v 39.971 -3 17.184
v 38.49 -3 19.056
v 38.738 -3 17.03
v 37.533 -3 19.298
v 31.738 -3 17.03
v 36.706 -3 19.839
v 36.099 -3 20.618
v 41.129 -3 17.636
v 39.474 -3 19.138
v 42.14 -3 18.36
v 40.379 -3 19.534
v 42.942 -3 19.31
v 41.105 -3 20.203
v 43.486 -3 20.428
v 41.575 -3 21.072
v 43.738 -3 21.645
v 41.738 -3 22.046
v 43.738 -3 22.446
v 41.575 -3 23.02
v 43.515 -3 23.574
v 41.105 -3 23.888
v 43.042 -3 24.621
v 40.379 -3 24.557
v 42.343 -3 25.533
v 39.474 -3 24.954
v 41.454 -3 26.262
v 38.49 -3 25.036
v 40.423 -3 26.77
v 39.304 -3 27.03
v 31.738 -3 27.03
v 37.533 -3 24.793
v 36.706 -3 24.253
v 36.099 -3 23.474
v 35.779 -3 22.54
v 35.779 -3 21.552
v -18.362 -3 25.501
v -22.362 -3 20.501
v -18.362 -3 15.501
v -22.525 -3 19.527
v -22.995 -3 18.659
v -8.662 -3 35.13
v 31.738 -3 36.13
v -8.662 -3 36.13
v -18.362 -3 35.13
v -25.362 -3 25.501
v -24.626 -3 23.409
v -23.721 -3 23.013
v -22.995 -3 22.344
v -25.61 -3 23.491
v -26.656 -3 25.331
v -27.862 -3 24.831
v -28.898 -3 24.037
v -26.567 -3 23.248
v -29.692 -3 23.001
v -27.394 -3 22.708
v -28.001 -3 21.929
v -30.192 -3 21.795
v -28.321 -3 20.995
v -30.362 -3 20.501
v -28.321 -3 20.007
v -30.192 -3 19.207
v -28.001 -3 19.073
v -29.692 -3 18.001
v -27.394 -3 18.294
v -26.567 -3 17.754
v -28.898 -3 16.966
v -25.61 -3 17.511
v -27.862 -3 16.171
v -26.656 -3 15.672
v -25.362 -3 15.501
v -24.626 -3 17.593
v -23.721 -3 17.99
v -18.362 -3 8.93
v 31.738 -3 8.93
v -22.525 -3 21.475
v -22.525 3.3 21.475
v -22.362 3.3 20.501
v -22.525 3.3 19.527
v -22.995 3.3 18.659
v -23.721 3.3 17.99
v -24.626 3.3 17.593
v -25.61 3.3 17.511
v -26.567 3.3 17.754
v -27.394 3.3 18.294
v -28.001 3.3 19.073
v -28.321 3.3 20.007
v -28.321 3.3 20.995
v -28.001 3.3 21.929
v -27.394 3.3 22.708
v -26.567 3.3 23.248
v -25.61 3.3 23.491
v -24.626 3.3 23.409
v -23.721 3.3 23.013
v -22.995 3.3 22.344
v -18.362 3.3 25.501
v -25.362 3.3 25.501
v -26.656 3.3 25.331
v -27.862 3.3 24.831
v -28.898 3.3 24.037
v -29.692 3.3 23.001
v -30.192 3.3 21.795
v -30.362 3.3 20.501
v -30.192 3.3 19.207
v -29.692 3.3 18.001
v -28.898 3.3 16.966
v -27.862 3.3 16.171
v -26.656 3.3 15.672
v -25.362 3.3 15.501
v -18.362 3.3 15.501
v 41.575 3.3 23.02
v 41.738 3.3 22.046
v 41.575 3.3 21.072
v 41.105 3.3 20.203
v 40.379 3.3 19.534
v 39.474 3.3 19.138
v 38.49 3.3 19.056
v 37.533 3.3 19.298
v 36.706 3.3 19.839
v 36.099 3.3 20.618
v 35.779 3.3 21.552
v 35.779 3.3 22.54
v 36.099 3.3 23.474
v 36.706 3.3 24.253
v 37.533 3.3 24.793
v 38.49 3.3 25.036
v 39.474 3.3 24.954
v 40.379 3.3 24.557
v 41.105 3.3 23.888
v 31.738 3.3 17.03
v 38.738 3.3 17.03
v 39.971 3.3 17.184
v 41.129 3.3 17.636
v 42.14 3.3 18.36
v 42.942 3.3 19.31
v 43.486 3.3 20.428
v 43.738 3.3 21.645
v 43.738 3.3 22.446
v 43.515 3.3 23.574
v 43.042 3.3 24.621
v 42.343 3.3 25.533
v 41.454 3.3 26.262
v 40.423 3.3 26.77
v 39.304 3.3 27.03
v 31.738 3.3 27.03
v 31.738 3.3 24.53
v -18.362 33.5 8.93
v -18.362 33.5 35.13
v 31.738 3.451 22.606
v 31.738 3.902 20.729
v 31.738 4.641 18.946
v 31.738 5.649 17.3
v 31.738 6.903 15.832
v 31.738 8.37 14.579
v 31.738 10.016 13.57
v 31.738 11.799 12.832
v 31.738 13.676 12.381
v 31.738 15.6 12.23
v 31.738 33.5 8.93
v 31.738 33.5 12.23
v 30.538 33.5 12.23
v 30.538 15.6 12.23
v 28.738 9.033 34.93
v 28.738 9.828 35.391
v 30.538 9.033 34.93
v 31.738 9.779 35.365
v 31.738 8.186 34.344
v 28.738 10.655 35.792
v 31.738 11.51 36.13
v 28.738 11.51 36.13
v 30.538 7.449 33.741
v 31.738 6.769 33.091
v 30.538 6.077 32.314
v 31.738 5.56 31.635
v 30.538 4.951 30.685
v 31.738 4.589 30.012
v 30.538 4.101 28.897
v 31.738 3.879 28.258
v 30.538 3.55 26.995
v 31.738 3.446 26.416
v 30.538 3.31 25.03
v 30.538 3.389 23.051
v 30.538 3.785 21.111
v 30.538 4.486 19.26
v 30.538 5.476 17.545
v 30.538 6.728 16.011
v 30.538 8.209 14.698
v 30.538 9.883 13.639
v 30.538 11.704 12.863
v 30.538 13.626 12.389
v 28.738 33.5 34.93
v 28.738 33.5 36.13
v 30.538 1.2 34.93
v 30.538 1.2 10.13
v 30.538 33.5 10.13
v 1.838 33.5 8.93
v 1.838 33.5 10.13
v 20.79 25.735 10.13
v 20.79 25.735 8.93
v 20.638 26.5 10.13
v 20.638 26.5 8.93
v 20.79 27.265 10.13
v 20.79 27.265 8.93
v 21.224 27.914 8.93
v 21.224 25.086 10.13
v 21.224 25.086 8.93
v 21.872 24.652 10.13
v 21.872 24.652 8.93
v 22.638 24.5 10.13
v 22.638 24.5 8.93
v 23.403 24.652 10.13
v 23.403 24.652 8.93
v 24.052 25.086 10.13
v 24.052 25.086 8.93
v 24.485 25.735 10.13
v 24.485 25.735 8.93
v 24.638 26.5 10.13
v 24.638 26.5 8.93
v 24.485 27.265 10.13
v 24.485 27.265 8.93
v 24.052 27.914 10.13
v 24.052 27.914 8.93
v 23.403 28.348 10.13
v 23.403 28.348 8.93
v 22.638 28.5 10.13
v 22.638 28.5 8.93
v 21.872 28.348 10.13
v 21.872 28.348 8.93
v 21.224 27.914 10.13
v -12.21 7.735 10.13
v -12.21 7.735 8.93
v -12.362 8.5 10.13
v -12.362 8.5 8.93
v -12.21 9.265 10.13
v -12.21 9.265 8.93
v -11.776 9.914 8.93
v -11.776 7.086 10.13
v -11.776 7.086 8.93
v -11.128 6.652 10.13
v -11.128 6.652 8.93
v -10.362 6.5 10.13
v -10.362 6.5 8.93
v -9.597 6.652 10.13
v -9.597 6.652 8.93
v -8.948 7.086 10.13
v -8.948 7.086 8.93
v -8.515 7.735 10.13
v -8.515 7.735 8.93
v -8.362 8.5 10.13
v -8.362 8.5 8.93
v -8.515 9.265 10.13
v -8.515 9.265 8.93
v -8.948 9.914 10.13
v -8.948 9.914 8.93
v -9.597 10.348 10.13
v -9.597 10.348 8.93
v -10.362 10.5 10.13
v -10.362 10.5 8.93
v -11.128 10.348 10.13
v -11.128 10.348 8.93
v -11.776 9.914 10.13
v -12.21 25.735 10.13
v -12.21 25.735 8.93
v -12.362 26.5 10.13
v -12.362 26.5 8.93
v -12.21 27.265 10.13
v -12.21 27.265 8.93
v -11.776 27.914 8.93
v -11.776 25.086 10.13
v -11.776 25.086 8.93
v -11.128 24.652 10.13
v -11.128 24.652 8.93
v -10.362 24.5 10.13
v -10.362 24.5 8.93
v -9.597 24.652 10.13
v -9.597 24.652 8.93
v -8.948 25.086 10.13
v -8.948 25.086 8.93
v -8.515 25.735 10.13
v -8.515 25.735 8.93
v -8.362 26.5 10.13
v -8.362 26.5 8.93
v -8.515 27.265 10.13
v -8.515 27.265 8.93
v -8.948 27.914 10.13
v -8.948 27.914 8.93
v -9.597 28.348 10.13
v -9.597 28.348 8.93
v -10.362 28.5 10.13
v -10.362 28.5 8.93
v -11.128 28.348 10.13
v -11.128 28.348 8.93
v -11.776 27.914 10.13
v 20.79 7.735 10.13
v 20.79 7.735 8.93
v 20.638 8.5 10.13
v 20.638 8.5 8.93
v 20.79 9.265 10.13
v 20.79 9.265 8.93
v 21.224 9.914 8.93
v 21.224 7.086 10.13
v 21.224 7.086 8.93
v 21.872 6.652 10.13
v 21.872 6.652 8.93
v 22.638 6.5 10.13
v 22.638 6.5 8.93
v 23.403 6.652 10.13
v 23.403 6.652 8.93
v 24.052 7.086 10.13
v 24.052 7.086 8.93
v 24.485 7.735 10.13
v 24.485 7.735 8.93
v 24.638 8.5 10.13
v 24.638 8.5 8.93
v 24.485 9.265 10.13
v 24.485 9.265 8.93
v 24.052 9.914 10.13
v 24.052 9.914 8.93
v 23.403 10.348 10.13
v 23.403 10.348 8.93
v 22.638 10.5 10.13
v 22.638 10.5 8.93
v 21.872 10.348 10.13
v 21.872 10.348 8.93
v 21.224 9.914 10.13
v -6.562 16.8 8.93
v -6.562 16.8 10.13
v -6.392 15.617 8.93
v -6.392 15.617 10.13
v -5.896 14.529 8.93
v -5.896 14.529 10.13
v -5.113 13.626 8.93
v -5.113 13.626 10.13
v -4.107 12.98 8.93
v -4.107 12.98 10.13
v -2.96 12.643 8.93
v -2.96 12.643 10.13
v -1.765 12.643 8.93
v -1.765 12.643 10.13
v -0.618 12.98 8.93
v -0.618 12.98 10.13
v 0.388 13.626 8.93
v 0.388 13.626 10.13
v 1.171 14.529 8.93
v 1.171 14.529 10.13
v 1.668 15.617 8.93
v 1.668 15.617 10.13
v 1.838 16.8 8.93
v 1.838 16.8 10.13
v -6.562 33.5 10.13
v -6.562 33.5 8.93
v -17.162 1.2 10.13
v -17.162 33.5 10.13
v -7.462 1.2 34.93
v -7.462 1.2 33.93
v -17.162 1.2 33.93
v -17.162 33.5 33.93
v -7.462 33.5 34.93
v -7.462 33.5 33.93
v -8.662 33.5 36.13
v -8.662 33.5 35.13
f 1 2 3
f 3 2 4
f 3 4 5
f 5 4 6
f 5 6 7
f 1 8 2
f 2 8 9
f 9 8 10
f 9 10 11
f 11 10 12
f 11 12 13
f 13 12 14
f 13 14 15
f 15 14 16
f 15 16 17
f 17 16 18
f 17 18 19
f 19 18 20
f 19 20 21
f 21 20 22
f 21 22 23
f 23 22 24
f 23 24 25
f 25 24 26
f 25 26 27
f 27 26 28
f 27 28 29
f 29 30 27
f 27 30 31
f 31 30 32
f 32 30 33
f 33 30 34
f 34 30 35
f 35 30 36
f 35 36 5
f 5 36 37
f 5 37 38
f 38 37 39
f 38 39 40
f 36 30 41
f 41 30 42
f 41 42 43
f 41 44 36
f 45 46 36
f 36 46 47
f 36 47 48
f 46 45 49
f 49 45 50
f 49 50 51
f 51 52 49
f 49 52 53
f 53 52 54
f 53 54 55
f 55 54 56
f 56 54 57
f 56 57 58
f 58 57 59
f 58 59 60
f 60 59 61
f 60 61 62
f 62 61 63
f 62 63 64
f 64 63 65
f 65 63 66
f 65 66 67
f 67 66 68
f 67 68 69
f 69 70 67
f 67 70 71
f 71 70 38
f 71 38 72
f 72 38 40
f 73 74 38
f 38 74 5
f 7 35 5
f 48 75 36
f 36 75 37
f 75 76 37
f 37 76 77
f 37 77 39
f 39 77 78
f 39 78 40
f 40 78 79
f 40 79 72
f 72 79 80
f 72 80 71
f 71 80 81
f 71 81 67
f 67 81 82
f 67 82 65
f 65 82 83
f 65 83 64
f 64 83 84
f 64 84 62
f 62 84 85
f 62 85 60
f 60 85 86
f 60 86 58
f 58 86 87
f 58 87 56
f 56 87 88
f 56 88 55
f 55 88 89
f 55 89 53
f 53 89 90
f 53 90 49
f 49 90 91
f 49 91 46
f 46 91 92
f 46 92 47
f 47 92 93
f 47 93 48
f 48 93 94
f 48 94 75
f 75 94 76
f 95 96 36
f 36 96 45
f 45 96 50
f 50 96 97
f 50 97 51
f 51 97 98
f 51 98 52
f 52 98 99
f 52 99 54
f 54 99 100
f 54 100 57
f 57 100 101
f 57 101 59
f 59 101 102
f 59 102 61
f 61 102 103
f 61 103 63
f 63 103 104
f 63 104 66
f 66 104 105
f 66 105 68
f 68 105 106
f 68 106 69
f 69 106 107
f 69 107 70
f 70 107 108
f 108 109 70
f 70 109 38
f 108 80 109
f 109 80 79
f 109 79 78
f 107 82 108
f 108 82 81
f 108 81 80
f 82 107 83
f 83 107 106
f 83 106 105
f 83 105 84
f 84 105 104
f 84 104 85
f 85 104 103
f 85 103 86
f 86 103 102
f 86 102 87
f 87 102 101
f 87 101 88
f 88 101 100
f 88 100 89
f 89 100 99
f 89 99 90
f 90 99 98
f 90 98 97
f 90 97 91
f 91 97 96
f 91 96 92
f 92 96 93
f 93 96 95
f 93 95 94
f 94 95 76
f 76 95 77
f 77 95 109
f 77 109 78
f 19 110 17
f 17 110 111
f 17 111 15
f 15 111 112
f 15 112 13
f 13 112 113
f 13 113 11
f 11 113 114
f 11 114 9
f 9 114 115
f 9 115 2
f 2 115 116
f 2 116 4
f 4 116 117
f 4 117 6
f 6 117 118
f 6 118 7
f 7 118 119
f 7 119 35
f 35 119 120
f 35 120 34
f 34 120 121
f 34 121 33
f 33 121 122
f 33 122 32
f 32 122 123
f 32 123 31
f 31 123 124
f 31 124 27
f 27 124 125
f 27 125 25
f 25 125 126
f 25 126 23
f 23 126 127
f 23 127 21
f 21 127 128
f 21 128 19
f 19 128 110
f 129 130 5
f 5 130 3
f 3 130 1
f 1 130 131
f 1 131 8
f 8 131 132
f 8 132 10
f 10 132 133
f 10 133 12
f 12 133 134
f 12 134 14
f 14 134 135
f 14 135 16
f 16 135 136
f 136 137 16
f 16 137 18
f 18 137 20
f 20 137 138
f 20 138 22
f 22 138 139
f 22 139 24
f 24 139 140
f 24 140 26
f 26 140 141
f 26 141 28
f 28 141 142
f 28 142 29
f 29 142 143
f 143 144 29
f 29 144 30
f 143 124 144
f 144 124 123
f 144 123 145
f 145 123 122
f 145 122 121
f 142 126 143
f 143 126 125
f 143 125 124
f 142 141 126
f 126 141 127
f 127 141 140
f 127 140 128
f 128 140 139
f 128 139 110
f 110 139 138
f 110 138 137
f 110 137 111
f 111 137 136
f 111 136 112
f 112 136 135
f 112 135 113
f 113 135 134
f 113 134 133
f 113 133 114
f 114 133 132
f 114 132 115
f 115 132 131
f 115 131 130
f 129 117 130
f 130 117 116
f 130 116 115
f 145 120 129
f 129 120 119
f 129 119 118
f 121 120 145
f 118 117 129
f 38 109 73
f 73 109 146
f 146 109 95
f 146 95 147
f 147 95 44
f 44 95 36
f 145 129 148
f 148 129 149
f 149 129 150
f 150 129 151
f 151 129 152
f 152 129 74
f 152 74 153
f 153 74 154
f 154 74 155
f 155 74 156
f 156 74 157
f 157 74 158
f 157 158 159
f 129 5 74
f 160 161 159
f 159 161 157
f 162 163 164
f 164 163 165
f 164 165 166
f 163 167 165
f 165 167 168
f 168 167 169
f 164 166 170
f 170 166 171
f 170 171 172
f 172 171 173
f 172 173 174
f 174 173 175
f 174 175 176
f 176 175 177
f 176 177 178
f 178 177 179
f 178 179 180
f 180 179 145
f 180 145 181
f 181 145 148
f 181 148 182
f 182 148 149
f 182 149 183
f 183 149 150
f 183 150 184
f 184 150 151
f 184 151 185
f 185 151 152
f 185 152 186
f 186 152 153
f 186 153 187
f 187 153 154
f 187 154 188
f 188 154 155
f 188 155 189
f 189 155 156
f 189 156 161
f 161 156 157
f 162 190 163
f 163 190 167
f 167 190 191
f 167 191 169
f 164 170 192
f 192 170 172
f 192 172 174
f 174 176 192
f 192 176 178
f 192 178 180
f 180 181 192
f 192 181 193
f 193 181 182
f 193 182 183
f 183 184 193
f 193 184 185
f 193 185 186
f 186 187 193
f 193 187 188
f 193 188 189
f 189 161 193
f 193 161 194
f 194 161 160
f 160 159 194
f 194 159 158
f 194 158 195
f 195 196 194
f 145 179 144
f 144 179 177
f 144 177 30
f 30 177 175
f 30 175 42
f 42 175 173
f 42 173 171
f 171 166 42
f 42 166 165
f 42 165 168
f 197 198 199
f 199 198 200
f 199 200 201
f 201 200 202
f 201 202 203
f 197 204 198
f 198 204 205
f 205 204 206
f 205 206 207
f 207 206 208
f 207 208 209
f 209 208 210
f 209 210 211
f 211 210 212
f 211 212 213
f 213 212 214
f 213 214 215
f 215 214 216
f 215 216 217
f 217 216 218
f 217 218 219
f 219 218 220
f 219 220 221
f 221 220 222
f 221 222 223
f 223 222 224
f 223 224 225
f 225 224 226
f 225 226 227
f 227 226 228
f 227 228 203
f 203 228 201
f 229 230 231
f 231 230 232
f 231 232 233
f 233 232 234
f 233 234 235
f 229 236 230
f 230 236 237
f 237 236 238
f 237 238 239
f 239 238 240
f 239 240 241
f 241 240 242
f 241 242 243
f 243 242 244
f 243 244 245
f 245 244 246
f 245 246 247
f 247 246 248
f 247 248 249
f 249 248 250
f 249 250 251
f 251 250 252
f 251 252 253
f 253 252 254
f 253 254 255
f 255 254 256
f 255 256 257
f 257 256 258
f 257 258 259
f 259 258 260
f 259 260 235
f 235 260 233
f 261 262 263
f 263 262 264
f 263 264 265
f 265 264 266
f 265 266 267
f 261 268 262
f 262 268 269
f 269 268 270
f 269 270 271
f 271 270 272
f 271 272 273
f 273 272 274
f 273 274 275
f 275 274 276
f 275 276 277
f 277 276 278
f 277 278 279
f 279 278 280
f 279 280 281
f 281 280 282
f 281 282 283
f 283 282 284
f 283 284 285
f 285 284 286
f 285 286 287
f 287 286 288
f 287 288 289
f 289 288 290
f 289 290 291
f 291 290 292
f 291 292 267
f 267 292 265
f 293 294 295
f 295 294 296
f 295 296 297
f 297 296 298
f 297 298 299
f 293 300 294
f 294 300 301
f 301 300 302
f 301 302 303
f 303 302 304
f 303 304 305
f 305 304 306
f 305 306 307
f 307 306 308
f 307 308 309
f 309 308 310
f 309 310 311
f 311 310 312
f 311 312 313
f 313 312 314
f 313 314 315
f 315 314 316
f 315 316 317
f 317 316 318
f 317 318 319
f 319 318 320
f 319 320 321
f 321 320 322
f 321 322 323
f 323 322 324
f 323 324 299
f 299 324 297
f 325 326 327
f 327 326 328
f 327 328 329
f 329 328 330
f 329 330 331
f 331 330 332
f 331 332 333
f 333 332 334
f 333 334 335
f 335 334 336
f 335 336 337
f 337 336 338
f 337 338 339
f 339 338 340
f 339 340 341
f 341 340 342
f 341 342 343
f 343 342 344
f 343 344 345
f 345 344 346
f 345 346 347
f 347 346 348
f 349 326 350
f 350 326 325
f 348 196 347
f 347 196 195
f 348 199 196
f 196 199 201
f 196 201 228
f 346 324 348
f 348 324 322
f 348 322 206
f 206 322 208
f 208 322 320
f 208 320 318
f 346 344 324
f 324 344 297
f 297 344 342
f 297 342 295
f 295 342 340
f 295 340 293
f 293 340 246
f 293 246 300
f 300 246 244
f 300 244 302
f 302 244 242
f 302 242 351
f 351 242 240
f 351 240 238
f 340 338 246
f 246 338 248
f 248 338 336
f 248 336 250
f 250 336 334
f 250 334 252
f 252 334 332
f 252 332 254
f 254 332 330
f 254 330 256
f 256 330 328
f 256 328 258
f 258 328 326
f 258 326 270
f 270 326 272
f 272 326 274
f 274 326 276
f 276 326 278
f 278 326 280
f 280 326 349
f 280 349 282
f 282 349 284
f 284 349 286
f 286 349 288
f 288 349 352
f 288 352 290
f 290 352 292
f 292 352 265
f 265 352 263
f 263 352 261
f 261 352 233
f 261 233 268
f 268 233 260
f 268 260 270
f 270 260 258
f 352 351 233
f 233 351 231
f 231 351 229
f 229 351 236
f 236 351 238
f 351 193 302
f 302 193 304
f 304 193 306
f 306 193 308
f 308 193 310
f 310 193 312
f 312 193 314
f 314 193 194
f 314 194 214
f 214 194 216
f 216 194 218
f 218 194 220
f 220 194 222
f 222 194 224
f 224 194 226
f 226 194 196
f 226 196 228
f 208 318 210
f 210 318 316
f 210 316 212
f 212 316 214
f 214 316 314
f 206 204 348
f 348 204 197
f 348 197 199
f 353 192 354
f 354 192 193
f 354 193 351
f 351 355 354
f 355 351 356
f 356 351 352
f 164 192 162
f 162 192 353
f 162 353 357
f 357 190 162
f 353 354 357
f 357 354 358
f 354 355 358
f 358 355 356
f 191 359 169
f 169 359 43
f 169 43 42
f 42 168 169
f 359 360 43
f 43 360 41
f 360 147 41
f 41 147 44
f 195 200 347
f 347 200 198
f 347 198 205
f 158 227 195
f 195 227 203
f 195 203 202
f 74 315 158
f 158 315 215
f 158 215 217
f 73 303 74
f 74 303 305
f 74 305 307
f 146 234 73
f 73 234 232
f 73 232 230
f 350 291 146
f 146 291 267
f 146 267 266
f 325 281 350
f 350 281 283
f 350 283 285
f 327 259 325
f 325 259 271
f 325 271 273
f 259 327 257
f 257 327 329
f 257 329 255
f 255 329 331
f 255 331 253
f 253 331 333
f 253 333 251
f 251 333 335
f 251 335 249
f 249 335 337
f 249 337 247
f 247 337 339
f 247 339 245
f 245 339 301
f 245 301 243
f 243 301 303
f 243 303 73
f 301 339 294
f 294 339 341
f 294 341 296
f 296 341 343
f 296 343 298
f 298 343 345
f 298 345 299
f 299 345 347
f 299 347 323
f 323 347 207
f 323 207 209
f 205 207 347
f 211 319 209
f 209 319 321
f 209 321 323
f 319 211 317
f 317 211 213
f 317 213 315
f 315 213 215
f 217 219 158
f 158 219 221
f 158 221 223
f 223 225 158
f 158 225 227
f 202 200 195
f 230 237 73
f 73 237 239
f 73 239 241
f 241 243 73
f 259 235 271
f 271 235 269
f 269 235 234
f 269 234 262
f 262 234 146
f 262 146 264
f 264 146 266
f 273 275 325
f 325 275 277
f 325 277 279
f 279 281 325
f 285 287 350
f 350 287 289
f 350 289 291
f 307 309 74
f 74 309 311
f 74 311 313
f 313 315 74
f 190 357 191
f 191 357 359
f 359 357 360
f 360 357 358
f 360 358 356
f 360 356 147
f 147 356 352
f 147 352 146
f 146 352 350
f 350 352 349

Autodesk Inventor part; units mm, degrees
ref_plane "YZ Plane" through (0, 0, 0) normal (1, 0, 0) x (0, 1, 0)
ref_plane "XZ Plane" through (0, 0, 0) normal (0, 1, 0) x (-1, 0, 0)
ref_plane "XY Plane" through (0, 0, 0) normal (0, 0, 1) x (1, 0, 0)
sketch "Sketch1" plane through (0, 0, 0) normal (0, 1, 0) x (-1, 0, 0)
  line L0 (17.1623, 10.1297) -> (-30.5377, 10.1297)
  line L1 (-30.5377, 34.9297) -> (7.4623, 34.9297)
  line L2 (7.4623, 34.9297) -> (7.4623, 33.9297)
  line L3 (7.4623, 33.9297) -> (17.1623, 33.9297)
  line L4 (17.1623, 33.9297) -> (17.1623, 10.1297)
  line L5 (-31.7377, 8.9297) -> (18.3623, 8.9297)
  line L6 (18.3623, 8.9297) -> (18.3623, 35.1297)
  line L7 (18.3623, 35.1297) -> (8.6623, 35.1297)
  line L8 (8.6623, 35.1297) -> (8.6623, 36.1297)
  line L9 (8.6623, 36.1297) -> (-31.7377, 36.1297)
  line L10 (-30.5377, 10.1297) -> (-30.5377, 34.9297)
  line L11 (-31.7377, 8.9297) -> (-31.7377, 36.1297)
  point P0 (0, 0)
  dimension "d0" = 47.7
  dimension "d1" = 23.8
  dimension "d2" = 9.7
  dimension "d3" = 1
  dimension "d4" = 1.2
  dimension "d5" = 1.2
  dimension "d6" = 1.2
  dimension "d7" = 1.2
  dimension "d8" = 1.2
  dimension "d19" = 1.2
extrude "Extrusion3" add sketch "Sketch1" along normal blind 33.5
sketch "Sketch3" plane through (0, 0, 0) normal (0, -1, 0) x (1, 0, 0)
  line L0 (30.5377, 34.9297) -> (-7.4623, 34.9297) projected
  line L1 (30.5377, 34.9297) -> (30.5377, 10.1297) projected
  line L2 (30.5377, 34.9297) -> (30.5377, 10.1297)
  line L3 (-17.1623, 10.1297) -> (30.5377, 10.1297) projected
  line L4 (30.5377, 10.1297) -> (-17.1623, 10.1297)
  line L5 (-17.1623, 33.9297) -> (-17.1623, 10.1297) projected
  line L6 (-17.1623, 10.1297) -> (-17.1623, 33.9297)
  line L7 (-7.4623, 33.9297) -> (-7.4623, 34.9297) projected
  line L8 (-17.1623, 33.9297) -> (-7.4623, 33.9297)
  line L9 (-7.4623, 33.9297) -> (-7.4623, 34.9297)
  line L10 (-7.4623, 34.9297) -> (30.5377, 34.9297)
  point P0 (0, 0)
extrude "Extrusion4" add sketch "Sketch3" against normal blind 1.2
sketch "Sketch4" plane through (31.7377, 0, 8.9297) normal (0, 0, -1) x (-1, 0, 0)
  arc A0 (29.9, 16.8) -> (38.3, 16.8) centre (34.1, 16.8) ccw
  line L0 (50.1, 0) -> (50.1, 33.5) projected
  line L1 (0, 0) -> (50.1, 0) projected
  line L2 (29.9, 16.8) -> (29.9, 33.5)
  line L3 (29.9, 33.5) -> (38.3, 33.5)
  line L4 (0, 33.5) -> (50.1, 33.5) projected
  line L5 (38.3, 33.5) -> (38.3, 16.8)
  circle A1 centre (42.1, 26.5) radius 2
  circle A2 centre (42.1, 8.5) radius 2
  circle A3 centre (9.1, 8.5) radius 2
  circle A4 centre (9.1, 26.5) radius 2
  line L6 (0, 0) -> (0, 33.5) projected
  point P0 (31.7377, 0)
  dimension "d24" = 16
  dimension "d25" = 16.8
  dimension "d26" = 4.2
  dimension "d27" = 4
  dimension "d29" = 7
  dimension "d30" = 4
  dimension "d32" = 18
  dimension "d33" = 4
  dimension "d34" = 4
  dimension "d36" = 18
  dimension "d37" = 7
  dimension "d38" = 0
  dimension "d63" = 33
  dimension "d64" = 8
extrude "Extrusion5" cut sketch "Sketch4" against normal blind 5 contours L2 L3 L5 A0 | A1 | A2 | A3 | A4
sketch "Sketch5" plane through (31.7377, 0, 36.1297) normal (1, 0, 0) x (0, 0, -1)
  arc A0 (-0.7, 15.6) -> (23.9, 15.6) centre (11.6, 15.6) ccw
  line L0 (0, 0) -> (27.2, 0) projected
  line L1 (27.2, 0) -> (27.2, 33.5) projected
  line L2 (23.9, 15.6) -> (23.9, 33.5)
  line L3 (27.2, 33.5) -> (1, 33.5) projected
  line L4 (1, 33.5) -> (0, 33.5) projected
  line L5 (-0.7, 15.6) -> (18, 15.6) construction
  line L6 (0.1, 33.5) -> (23.9, 33.5)
  line L7 (-0.7, 15.6) -> (0, 15.6)
  line L8 (0, 0) -> (0, 33.5) projected
  line L9 (0, 15.6) -> (0, 33.5)
  line L10 (0, 33.5) -> (0.1, 33.5)
  point P0 (36.1297, 0)
  dimension "d41" = 24.6
  dimension "d42" = 15.6
  dimension "d43" = 15.6
extrude "Extrusion6" cut sketch "Sketch5" against normal blind 3 contours L7 L8 A0 | L8 L4 L3 L2 A0
sketch "Sketch6" plane through (0, 0, 0) normal (0, -1, 0) x (1, 0, 0)
  line L0 (39.3039, 27.0297) -> (31.7377, 27.0297)
  line L1 (31.7377, 27.0297) -> (31.7377, 17.0297)
  line L2 (31.7377, 17.0297) -> (38.7377, 17.0297)
  line L3 (43.7377, 21.6451) -> (43.7377, 22.4464)
  line L4 (31.7377, 36.1297) -> (31.7377, 8.9297) projected
  line L5 (31.7377, 8.9297) -> (-18.3623, 8.9297) projected
  arc A0 (38.7377, 17.0297) -> (39.3039, 27.0297) centre (38.7377, 22.0458) ccw
  line L6 (-18.3623, 8.9297) -> (-18.3623, 35.1297) projected
  line L7 (-18.3623, 25.5012) -> (-25.3623, 25.5012)
  line L8 (-30.3623, 15.5012) -> (-18.3623, 15.5012)
  line L9 (-18.3623, 15.5012) -> (-18.3623, 25.5012)
  arc A1 (-25.3623, 25.5012) -> (-25.3623, 15.5012) centre (-25.3623, 20.5012) ccw
  circle A2 centre (-25.3623, 20.5012) radius 3
  circle A3 centre (38.7377, 22.0458) radius 3
  point P0 (0, 0)
  dimension "d48" = 10
  dimension "d49" = 0
  dimension "d50" = 8.1
  dimension "d51" = 5
  dimension "d52" = 7
  dimension "d53" = 12
  dimension "d55" = 7
  dimension "d56" = 6
  dimension "d57" = 6
extrude "Extrusion7" add sketch "Sketch6" against normal blind 3.3 contours A0 L3 L2 L1 L0 | L8 A1 L7 L6
sketch "Sketch7" plane through (0, 0, 0) normal (0, -1, 0) x (1, 0, 0)
  circle A0 centre (-25.3623, 20.5012) radius 3 projected
  circle A1 centre (38.7377, 22.0458) radius 3 projected
  line L0 (31.7377, 8.9297) -> (-18.3623, 8.9297) projected
  line L1 (31.7377, 17.0297) -> (31.7377, 8.9297) projected
  line L2 (31.7377, 17.0297) -> (38.7377, 17.0297) projected
  arc A2 (38.7377, 17.0297) -> (43.7377, 21.6451) centre (38.7377, 22.0458) ccw projected
  line L3 (43.7377, 21.6451) -> (43.7377, 22.4464) projected
  arc A3 (43.7377, 22.4464) -> (39.3039, 27.0297) centre (38.7377, 22.0458) ccw projected
  line L4 (39.3039, 27.0297) -> (31.7377, 27.0297) projected
  line L5 (31.7377, 36.1297) -> (31.7377, 27.0297) projected
  line L6 (-8.6623, 36.1297) -> (31.7377, 36.1297) projected
  line L7 (-8.6623, 35.1297) -> (-8.6623, 36.1297) projected
  line L8 (-18.3623, 35.1297) -> (-8.6623, 35.1297) projected
  line L9 (-18.3623, 25.5012) -> (-18.3623, 35.1297) projected
  line L10 (-18.3623, 25.5012) -> (-25.3623, 25.5012) projected
  arc A4 (-25.3623, 25.5012) -> (-25.3623, 15.5012) centre (-25.3623, 20.5012) ccw projected
  line L11 (-25.3623, 15.5012) -> (-18.3623, 15.5012) projected
  line L12 (-18.3623, 8.9297) -> (-18.3623, 15.5012) projected
  point P0 (0, 0)
extrude "Extrusion8" add sketch "Sketch7" along normal blind 3
properties part number "MotorMount"
